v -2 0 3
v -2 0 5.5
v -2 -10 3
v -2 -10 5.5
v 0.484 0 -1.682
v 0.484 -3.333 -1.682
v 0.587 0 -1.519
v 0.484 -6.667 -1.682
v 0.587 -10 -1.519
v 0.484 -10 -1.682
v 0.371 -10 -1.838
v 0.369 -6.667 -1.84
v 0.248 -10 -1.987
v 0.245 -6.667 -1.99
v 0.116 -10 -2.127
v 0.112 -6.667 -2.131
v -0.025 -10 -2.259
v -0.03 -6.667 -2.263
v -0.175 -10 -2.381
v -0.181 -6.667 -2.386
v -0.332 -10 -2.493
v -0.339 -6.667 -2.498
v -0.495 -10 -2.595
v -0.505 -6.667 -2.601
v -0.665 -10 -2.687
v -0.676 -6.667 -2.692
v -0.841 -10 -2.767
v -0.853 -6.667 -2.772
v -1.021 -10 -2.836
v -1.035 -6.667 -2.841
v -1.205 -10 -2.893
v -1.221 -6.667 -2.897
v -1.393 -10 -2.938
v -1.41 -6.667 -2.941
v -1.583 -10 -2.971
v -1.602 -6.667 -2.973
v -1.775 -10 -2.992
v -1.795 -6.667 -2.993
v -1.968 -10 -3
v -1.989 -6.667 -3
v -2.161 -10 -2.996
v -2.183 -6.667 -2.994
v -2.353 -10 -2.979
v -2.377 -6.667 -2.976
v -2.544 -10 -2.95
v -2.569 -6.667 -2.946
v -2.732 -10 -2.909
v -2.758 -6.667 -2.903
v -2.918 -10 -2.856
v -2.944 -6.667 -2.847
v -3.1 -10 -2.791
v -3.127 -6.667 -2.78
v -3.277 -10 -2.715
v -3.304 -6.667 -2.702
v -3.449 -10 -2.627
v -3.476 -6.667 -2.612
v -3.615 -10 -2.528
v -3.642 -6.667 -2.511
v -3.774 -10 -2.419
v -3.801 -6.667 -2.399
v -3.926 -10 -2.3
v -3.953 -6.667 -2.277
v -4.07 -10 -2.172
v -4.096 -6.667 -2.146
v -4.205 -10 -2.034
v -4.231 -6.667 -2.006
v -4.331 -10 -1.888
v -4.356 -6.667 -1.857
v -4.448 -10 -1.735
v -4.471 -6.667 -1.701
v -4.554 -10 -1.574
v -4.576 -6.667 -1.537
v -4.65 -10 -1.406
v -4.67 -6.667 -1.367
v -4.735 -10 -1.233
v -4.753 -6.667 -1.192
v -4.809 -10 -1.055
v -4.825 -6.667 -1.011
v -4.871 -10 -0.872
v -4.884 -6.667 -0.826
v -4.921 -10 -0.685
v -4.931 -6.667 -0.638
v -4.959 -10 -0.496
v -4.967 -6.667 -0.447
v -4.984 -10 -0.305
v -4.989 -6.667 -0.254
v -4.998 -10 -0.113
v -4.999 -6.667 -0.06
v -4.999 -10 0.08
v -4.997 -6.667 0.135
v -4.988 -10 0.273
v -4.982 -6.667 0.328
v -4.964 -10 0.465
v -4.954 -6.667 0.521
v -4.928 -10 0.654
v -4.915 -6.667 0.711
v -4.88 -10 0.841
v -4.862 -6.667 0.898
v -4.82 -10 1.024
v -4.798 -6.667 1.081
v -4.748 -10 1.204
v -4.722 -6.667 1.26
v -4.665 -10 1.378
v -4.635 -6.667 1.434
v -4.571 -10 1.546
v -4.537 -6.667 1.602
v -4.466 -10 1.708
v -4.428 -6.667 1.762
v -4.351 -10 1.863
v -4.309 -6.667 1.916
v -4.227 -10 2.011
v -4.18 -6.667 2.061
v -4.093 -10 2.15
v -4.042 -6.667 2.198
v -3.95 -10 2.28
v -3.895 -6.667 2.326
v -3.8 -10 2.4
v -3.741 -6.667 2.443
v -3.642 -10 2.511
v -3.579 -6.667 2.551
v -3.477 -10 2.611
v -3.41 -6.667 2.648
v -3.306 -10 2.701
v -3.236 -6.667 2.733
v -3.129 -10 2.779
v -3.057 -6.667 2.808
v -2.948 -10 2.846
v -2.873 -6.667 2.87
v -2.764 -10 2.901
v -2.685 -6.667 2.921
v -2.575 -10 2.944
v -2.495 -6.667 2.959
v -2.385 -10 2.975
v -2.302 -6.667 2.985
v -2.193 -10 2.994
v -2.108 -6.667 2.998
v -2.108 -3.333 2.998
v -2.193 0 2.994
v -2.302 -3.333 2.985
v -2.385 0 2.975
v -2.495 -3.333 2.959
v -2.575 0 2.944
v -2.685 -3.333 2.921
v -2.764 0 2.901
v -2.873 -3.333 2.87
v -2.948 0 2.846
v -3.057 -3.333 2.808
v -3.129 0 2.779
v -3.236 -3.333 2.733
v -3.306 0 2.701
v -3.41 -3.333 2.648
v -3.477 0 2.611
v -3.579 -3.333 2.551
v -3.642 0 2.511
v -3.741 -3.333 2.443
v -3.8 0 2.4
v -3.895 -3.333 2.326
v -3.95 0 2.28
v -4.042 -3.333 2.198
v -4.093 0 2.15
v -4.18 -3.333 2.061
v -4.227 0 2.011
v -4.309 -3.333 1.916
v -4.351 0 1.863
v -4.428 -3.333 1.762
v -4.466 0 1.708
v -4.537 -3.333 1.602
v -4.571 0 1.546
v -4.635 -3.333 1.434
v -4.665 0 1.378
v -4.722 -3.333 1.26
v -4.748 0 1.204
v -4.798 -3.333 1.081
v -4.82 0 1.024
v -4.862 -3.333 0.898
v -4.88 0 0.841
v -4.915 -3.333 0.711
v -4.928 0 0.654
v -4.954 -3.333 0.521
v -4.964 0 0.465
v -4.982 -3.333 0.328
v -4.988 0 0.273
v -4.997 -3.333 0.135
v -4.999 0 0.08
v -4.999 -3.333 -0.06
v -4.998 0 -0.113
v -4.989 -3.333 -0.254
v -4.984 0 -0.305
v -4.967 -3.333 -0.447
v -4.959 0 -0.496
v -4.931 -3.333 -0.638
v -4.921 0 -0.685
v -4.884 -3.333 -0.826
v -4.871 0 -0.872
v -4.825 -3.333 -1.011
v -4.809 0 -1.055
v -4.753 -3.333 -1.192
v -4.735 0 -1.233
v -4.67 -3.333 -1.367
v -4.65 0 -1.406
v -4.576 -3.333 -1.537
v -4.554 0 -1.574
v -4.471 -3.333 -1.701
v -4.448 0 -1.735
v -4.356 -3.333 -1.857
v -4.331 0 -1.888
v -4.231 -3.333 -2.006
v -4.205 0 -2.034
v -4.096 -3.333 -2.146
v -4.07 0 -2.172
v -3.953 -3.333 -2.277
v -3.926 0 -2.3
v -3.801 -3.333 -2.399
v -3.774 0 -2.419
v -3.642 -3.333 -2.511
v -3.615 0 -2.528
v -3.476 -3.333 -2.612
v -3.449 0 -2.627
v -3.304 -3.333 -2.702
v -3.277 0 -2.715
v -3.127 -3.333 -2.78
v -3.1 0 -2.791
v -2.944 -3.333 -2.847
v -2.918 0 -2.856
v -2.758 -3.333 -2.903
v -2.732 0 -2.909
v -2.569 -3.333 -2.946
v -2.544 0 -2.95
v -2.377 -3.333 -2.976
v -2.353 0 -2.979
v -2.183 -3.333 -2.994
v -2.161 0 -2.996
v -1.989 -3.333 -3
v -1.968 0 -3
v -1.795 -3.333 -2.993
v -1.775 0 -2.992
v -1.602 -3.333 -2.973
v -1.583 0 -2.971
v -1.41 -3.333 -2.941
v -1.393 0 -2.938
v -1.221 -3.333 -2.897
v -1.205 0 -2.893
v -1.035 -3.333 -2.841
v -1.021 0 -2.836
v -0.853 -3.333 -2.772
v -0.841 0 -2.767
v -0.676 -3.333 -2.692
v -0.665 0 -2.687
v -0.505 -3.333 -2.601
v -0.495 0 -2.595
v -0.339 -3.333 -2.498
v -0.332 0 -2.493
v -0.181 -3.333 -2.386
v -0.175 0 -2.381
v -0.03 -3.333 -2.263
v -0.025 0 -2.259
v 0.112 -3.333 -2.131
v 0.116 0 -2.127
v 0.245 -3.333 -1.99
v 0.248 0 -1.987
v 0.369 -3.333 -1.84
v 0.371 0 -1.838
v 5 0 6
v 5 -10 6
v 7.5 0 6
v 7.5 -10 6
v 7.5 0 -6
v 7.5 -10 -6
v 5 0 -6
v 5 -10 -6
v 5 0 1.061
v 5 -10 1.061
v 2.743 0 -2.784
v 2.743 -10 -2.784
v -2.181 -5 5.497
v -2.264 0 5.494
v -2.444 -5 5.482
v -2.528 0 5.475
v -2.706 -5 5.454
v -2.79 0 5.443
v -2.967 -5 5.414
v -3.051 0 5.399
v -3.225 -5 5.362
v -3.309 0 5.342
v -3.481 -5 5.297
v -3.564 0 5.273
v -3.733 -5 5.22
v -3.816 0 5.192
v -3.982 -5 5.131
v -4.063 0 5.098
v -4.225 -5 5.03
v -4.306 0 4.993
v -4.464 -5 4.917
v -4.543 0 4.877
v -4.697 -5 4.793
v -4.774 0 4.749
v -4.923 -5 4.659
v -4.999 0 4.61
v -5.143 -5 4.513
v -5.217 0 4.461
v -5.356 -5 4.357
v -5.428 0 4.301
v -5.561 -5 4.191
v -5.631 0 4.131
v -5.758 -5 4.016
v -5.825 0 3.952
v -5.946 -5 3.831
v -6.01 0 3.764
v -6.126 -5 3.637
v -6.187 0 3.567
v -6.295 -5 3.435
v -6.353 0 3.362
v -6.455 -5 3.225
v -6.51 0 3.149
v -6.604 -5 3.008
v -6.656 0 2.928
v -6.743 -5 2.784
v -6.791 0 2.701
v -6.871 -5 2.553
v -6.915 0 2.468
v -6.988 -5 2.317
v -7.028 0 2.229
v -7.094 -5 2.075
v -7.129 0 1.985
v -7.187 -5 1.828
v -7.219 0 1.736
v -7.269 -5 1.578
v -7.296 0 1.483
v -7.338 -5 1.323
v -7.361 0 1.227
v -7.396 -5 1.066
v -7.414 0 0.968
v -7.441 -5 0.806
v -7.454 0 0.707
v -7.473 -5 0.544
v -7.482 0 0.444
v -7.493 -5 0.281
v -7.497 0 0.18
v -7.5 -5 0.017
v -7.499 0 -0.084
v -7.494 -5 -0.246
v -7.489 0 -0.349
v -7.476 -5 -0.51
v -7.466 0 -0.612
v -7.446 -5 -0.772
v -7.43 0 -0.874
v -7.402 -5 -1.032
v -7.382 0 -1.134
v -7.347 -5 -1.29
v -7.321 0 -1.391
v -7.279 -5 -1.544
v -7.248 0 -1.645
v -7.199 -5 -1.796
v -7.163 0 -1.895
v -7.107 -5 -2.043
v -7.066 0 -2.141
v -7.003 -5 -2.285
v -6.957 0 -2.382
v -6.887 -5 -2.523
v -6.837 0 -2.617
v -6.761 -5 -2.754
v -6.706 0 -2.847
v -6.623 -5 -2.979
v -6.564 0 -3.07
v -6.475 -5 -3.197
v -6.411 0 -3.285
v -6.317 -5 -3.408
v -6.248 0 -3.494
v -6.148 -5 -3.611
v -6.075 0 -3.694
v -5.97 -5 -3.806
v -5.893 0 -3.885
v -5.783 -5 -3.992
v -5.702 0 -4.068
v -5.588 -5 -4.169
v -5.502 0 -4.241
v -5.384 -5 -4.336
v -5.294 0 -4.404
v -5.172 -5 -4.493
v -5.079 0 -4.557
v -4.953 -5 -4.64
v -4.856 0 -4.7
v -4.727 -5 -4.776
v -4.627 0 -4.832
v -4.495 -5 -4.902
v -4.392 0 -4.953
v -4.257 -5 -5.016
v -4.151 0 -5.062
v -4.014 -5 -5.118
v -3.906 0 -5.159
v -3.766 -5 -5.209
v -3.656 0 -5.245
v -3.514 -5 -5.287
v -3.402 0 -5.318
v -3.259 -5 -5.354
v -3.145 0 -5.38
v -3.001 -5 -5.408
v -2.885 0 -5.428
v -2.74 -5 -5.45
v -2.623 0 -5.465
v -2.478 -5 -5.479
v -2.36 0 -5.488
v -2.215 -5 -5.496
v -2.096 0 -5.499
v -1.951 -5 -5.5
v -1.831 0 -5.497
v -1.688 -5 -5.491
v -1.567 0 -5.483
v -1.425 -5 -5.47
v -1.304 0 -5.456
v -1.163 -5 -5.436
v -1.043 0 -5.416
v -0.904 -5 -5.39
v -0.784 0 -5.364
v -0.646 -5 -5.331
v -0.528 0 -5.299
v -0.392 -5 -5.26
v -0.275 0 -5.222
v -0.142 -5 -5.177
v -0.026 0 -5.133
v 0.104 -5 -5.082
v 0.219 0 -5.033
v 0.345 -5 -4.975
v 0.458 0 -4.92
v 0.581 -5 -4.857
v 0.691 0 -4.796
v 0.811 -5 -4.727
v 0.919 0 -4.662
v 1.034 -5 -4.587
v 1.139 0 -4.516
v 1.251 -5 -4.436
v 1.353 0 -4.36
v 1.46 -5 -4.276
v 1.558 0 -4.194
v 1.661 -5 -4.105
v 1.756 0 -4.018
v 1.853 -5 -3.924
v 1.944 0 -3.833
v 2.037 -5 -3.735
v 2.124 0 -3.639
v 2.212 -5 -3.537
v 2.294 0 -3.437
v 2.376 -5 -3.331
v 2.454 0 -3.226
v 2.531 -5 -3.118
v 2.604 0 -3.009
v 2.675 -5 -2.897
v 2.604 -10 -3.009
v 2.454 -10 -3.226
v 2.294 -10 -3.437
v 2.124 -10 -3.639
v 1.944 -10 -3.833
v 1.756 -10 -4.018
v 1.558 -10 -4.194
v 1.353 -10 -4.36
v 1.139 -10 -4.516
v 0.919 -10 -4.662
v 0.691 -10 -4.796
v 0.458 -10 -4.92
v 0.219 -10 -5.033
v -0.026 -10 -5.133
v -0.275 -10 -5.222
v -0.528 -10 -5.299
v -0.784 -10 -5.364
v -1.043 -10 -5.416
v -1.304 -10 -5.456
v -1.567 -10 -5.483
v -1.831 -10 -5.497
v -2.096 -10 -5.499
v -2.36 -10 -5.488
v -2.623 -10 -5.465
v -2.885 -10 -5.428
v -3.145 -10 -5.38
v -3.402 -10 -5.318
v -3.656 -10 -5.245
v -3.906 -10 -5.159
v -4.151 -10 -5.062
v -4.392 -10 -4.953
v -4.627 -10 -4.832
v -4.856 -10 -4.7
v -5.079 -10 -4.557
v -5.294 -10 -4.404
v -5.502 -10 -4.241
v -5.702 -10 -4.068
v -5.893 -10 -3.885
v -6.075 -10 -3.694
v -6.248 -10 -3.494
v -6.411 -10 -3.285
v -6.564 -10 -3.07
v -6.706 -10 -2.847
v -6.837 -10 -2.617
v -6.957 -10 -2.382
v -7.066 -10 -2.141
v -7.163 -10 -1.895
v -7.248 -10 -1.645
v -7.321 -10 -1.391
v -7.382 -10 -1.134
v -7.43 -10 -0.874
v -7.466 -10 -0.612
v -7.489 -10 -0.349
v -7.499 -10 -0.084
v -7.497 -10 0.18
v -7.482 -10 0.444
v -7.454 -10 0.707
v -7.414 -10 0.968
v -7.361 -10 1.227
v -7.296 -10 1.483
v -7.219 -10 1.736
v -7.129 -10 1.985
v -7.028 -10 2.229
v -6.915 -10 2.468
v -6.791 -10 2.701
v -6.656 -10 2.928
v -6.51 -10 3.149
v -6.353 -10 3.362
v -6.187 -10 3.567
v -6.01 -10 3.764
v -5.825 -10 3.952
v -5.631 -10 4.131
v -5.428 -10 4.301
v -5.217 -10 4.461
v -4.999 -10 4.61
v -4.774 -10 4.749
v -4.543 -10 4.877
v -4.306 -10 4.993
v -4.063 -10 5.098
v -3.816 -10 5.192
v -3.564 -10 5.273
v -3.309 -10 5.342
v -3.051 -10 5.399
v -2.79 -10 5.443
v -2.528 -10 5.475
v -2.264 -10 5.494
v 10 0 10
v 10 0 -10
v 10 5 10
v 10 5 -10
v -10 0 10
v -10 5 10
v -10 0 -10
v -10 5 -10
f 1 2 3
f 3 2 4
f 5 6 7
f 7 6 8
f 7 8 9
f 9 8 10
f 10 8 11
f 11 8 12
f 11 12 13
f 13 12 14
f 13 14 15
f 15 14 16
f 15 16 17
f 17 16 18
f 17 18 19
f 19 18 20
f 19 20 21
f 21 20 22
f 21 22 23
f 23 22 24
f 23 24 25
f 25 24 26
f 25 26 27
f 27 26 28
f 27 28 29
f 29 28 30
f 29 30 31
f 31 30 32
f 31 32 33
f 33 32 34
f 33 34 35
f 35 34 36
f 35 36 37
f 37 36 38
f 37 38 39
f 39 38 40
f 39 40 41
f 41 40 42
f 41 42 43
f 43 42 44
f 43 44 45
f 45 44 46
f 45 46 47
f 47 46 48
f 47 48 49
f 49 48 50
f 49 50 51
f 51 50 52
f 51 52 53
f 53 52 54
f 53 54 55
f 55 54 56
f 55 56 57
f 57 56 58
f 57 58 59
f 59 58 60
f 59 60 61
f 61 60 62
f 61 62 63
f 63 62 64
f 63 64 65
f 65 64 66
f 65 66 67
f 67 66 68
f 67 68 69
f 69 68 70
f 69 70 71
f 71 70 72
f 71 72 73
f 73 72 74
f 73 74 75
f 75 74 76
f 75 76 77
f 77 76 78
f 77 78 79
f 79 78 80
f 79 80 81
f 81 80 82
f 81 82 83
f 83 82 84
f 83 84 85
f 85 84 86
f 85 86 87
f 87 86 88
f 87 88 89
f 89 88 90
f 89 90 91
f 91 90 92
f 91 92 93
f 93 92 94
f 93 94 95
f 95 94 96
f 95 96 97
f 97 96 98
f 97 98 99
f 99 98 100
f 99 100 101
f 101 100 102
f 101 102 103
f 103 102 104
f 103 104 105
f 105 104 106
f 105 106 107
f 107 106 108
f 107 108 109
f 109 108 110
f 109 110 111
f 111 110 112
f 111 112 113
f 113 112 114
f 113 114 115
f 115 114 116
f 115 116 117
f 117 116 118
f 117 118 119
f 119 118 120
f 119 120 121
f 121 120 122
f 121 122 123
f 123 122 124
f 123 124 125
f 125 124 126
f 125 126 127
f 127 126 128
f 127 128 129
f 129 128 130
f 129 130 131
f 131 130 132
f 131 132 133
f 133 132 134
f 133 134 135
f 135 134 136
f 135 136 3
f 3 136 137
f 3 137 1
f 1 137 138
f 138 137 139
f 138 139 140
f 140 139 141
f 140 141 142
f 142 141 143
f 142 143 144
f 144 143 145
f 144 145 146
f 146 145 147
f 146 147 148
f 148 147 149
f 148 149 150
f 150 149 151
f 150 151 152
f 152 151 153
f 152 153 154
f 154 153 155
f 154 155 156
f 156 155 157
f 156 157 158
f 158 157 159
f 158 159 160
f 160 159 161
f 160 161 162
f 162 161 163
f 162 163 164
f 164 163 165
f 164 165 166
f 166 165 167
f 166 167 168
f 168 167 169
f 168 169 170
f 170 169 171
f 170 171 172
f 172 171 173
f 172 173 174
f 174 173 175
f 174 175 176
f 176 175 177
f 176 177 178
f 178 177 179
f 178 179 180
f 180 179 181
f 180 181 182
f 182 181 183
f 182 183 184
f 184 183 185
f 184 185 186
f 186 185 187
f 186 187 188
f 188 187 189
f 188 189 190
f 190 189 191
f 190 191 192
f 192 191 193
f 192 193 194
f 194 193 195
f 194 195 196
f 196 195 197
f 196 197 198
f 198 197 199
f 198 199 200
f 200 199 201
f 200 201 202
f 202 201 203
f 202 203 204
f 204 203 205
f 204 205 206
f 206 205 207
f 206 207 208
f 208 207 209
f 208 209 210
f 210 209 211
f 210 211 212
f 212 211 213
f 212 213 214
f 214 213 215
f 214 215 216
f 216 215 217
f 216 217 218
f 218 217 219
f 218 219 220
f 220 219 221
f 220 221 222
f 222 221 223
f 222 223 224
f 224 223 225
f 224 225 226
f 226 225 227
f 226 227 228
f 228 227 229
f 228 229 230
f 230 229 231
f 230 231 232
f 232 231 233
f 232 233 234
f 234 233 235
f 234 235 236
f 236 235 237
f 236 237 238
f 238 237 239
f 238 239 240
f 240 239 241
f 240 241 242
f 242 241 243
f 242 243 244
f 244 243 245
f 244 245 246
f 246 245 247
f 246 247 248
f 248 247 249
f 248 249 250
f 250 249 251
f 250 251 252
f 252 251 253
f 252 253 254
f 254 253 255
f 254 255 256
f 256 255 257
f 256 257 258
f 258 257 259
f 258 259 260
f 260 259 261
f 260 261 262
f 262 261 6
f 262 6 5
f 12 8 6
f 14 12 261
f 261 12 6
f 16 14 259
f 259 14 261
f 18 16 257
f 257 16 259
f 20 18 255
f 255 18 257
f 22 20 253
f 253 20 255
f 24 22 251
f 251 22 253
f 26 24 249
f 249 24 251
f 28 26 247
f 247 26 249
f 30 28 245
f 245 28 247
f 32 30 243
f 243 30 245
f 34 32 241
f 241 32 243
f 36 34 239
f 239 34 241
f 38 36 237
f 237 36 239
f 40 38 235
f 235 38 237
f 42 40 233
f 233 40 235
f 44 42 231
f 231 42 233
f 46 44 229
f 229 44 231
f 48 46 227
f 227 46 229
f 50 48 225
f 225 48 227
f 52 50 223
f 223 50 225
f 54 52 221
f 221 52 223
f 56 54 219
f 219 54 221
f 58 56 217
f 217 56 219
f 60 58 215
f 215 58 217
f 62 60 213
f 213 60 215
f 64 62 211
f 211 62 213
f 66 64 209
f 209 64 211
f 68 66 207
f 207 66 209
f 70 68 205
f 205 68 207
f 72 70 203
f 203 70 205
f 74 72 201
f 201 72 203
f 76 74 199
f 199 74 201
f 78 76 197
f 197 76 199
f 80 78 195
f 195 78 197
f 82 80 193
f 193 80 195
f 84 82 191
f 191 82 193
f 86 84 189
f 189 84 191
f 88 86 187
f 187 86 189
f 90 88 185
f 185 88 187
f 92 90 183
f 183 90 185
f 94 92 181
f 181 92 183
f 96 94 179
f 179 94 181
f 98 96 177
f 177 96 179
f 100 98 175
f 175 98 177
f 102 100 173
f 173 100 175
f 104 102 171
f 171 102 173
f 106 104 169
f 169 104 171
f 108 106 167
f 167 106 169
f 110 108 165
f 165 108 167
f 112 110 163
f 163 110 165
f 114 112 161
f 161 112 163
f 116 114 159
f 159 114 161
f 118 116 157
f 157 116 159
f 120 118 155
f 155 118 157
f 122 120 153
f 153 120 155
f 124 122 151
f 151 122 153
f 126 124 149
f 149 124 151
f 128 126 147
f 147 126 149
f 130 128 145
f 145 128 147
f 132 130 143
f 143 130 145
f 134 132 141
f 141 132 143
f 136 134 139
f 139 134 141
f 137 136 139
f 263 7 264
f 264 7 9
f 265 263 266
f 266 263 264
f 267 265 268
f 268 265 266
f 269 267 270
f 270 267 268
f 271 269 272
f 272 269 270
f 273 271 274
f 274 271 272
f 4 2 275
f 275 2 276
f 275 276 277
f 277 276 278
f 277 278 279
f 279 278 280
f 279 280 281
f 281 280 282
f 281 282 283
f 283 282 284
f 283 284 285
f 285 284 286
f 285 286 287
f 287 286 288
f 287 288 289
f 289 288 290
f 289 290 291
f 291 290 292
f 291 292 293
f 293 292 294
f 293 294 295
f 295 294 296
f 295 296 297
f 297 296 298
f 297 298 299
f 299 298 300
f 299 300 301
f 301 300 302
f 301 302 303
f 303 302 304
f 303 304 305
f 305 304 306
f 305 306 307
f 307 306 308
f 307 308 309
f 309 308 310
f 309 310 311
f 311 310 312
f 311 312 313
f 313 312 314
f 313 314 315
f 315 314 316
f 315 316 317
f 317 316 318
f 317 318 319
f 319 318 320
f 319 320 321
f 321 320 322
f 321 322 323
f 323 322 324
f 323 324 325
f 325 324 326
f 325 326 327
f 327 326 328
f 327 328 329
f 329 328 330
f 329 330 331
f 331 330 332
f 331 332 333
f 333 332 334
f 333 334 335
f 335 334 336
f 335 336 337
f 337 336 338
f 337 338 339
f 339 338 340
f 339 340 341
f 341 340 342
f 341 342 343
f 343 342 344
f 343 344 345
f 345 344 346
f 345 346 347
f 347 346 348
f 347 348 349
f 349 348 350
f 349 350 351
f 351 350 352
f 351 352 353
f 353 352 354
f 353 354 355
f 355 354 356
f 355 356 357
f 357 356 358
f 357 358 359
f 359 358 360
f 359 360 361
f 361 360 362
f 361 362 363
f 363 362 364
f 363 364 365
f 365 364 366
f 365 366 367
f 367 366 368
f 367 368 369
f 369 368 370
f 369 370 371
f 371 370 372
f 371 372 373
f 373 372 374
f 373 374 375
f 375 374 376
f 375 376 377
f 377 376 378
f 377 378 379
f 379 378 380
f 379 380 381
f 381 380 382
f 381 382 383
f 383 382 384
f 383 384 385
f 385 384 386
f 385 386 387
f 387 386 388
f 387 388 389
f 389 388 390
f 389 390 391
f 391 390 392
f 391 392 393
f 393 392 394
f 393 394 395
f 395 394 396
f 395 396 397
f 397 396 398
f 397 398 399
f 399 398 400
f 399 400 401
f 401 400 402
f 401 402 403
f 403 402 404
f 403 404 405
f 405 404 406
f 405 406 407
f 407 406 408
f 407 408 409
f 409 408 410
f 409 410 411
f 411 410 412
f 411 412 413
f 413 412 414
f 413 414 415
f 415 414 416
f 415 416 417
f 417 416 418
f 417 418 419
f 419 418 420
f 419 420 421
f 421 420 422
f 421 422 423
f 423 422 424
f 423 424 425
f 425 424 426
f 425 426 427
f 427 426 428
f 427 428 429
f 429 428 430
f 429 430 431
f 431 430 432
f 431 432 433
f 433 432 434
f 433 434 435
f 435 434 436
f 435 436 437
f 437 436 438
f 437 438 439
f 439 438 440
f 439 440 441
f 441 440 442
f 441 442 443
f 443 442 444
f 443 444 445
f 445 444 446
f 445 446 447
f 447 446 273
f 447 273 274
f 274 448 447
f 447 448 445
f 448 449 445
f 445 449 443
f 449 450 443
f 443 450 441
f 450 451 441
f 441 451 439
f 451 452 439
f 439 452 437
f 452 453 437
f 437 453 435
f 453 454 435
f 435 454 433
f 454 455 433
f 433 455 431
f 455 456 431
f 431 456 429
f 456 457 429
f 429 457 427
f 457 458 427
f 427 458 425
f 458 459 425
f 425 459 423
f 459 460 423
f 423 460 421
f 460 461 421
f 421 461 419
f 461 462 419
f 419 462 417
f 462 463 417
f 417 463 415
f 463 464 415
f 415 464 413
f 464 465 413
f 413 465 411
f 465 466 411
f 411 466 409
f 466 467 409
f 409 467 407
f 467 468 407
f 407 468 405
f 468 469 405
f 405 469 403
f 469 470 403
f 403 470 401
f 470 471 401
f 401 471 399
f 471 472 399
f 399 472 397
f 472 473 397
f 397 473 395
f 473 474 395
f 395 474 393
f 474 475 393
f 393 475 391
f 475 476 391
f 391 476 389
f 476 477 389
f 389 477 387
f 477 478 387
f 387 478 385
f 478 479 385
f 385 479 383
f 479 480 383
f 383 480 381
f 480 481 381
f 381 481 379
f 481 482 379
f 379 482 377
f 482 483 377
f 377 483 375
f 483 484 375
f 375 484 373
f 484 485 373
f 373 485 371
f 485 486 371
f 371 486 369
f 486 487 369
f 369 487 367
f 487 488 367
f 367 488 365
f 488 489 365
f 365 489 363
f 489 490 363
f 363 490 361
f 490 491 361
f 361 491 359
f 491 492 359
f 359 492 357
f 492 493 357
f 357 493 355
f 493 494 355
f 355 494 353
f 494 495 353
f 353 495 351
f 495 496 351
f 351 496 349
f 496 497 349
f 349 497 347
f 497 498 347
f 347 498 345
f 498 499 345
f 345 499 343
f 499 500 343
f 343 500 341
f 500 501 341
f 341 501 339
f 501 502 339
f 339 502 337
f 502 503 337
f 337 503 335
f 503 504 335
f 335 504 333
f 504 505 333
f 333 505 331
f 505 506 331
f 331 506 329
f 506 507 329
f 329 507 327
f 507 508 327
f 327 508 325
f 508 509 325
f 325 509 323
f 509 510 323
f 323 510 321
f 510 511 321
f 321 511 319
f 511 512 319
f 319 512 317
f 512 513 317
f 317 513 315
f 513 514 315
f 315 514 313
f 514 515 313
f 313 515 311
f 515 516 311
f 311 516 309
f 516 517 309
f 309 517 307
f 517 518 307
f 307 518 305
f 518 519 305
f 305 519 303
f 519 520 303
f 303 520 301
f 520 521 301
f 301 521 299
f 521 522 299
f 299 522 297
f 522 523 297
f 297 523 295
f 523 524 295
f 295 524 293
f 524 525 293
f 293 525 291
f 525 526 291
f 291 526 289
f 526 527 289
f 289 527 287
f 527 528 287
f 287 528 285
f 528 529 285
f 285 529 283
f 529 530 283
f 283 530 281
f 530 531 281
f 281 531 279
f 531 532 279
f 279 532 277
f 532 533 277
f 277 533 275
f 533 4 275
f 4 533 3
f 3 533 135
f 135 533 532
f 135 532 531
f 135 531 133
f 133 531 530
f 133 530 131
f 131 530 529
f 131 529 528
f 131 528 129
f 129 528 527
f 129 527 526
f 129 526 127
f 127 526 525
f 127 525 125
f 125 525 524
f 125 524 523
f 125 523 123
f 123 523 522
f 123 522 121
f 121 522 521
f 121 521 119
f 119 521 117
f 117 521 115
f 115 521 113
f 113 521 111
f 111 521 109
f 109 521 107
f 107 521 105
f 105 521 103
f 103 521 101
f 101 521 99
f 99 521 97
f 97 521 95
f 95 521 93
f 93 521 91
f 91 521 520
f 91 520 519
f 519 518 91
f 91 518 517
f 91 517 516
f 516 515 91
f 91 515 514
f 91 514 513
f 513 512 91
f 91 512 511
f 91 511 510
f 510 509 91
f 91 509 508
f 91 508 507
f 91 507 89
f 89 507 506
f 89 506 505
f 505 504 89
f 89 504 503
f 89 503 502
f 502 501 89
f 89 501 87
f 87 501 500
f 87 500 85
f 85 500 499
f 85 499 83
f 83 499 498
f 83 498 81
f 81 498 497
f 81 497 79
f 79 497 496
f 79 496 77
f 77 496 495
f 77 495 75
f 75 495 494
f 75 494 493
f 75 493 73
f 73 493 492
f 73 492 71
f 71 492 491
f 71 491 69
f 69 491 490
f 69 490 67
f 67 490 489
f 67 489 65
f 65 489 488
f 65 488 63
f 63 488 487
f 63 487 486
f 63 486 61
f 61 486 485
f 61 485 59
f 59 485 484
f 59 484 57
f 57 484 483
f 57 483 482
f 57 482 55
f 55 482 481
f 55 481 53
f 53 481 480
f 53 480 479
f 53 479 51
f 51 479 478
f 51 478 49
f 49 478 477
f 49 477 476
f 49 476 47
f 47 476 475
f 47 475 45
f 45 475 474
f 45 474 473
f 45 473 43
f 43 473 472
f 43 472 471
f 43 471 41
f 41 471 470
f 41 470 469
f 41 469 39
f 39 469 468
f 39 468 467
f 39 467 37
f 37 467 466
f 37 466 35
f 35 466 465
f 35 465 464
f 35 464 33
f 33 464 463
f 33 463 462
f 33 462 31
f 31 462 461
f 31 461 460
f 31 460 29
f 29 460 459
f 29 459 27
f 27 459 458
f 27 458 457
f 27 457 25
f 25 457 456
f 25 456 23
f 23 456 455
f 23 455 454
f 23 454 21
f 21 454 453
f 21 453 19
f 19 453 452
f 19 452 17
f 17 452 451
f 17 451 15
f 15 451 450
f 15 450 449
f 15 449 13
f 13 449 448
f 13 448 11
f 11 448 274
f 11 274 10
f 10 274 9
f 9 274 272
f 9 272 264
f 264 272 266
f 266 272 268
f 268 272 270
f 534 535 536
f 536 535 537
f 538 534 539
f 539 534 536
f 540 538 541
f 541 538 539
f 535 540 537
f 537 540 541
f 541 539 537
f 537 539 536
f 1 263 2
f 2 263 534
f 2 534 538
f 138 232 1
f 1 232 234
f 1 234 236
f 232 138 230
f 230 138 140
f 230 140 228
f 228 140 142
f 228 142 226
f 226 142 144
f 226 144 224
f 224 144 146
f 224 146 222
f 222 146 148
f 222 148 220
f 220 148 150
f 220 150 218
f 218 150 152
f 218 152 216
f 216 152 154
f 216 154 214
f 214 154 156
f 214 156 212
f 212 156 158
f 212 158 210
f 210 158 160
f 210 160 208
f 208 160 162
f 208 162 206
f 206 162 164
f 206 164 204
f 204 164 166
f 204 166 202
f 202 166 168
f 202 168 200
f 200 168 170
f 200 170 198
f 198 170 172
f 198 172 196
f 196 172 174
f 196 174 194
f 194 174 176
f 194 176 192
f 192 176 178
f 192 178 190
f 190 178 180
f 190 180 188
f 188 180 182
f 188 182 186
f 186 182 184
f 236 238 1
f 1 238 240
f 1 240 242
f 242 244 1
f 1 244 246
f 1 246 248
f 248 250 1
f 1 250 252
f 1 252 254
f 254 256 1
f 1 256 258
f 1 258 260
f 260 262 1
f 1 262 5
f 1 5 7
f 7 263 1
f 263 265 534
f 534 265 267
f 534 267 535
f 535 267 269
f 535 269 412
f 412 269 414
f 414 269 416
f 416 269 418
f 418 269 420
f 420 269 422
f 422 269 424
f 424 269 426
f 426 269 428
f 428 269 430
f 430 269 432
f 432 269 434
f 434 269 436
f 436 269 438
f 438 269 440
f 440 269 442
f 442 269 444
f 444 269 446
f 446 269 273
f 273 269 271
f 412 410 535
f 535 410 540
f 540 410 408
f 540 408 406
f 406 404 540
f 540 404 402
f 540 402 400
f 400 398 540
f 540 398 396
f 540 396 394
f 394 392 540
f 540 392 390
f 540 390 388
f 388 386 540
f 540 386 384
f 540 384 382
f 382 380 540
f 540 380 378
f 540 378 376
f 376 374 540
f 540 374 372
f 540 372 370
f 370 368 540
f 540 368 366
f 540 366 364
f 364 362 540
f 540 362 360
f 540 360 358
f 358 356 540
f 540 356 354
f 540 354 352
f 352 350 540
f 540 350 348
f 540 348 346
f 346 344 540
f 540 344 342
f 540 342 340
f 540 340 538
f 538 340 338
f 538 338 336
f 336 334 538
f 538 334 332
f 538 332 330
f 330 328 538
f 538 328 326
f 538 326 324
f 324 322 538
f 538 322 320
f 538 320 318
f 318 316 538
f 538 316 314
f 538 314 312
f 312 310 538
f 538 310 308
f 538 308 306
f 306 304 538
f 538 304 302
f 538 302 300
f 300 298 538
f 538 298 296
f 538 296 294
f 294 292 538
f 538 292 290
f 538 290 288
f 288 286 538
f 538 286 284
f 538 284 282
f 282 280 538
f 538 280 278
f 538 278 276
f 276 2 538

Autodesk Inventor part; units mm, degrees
ref_plane "YZ Plane" through (0, 0, 0) normal (1, 0, 0) x (0, 1, 0)
ref_plane "XZ Plane" through (0, 0, 0) normal (0, 1, 0) x (-1, 0, 0)
ref_plane "XY Plane" through (0, 0, 0) normal (0, 0, 1) x (1, 0, 0)
sketch "Sketch1" plane through (0, 0, 0) normal (0, 1, 0) x (-1, 0, 0)
  line L0 (-10, -10) -> (10, -10)
  line L1 (10, -10) -> (10, 10)
  line L2 (10, 10) -> (-10, 10)
  line L3 (-10, 10) -> (-10, -10)
  line L4 (-10, -10) -> (10, 10) construction
  line L5 (10, -10) -> (-10, 10) construction
  point P0 (0, 0)
  dimension "d0" = 20
  dimension "d1" = 20
extrude "Extrusion1" add sketch "Sketch1" along normal blind 5
sketch "Sketch2" plane through (0, 0, 0) normal (0, 1, 0) x (-1, 0, 0)
  arc A0 (-2.7434, -2.7839) -> (2, 5.5) centre (2, 0) ccw
  line L0 (2, 0) -> (-2.7434, -2.7839) construction
  line L1 (2, 0) -> (2, 5.5) construction
  arc A1 (-0.5873, -1.5185) -> (2, 3) centre (2, 0) ccw
  line L2 (2, 5.5) -> (2, 3)
  line L3 (-0.5873, -1.5185) -> (-5, 6)
  line L4 (-5, 6) -> (-7.5, 6)
  line L5 (-7.5, 6) -> (-7.5, -6)
  line L6 (-7.5, -6) -> (-5, -6)
  line L7 (-5, -6) -> (-5, 1.061)
  line L8 (-5, 1.061) -> (-2.7434, -2.7839)
  line L9 (-10, 10) -> (-10, -10) projected
  line L10 (7.5, 0) -> (7.5, -3.2169) construction
  line L11 (10, -10) -> (10, 10) projected
  line L12 (14, 0) -> (-14, 0) projected
  point P0 (0, 0)
  point P1 (2, 4.25)
  point P2 (-5, -2.4695)
  point P3 (-7.5, 0)
  dimension "d6" = 2.5
  dimension "d7" = 2.5
  dimension "d9" = 3
  dimension "d11" = 12
  dimension "d13" = 2.5
  dimension "d14" = 2.5
  dimension "d15" = 2.5
extrude "Extrusion2" add sketch "Sketch2" against normal blind 10 contours L8 L12 L3 A1 A0 | L12 A1 L2 A0 | L8 L7 L12 L5 L4 L3 | L7 L6 L5 L12
properties part number "2"
